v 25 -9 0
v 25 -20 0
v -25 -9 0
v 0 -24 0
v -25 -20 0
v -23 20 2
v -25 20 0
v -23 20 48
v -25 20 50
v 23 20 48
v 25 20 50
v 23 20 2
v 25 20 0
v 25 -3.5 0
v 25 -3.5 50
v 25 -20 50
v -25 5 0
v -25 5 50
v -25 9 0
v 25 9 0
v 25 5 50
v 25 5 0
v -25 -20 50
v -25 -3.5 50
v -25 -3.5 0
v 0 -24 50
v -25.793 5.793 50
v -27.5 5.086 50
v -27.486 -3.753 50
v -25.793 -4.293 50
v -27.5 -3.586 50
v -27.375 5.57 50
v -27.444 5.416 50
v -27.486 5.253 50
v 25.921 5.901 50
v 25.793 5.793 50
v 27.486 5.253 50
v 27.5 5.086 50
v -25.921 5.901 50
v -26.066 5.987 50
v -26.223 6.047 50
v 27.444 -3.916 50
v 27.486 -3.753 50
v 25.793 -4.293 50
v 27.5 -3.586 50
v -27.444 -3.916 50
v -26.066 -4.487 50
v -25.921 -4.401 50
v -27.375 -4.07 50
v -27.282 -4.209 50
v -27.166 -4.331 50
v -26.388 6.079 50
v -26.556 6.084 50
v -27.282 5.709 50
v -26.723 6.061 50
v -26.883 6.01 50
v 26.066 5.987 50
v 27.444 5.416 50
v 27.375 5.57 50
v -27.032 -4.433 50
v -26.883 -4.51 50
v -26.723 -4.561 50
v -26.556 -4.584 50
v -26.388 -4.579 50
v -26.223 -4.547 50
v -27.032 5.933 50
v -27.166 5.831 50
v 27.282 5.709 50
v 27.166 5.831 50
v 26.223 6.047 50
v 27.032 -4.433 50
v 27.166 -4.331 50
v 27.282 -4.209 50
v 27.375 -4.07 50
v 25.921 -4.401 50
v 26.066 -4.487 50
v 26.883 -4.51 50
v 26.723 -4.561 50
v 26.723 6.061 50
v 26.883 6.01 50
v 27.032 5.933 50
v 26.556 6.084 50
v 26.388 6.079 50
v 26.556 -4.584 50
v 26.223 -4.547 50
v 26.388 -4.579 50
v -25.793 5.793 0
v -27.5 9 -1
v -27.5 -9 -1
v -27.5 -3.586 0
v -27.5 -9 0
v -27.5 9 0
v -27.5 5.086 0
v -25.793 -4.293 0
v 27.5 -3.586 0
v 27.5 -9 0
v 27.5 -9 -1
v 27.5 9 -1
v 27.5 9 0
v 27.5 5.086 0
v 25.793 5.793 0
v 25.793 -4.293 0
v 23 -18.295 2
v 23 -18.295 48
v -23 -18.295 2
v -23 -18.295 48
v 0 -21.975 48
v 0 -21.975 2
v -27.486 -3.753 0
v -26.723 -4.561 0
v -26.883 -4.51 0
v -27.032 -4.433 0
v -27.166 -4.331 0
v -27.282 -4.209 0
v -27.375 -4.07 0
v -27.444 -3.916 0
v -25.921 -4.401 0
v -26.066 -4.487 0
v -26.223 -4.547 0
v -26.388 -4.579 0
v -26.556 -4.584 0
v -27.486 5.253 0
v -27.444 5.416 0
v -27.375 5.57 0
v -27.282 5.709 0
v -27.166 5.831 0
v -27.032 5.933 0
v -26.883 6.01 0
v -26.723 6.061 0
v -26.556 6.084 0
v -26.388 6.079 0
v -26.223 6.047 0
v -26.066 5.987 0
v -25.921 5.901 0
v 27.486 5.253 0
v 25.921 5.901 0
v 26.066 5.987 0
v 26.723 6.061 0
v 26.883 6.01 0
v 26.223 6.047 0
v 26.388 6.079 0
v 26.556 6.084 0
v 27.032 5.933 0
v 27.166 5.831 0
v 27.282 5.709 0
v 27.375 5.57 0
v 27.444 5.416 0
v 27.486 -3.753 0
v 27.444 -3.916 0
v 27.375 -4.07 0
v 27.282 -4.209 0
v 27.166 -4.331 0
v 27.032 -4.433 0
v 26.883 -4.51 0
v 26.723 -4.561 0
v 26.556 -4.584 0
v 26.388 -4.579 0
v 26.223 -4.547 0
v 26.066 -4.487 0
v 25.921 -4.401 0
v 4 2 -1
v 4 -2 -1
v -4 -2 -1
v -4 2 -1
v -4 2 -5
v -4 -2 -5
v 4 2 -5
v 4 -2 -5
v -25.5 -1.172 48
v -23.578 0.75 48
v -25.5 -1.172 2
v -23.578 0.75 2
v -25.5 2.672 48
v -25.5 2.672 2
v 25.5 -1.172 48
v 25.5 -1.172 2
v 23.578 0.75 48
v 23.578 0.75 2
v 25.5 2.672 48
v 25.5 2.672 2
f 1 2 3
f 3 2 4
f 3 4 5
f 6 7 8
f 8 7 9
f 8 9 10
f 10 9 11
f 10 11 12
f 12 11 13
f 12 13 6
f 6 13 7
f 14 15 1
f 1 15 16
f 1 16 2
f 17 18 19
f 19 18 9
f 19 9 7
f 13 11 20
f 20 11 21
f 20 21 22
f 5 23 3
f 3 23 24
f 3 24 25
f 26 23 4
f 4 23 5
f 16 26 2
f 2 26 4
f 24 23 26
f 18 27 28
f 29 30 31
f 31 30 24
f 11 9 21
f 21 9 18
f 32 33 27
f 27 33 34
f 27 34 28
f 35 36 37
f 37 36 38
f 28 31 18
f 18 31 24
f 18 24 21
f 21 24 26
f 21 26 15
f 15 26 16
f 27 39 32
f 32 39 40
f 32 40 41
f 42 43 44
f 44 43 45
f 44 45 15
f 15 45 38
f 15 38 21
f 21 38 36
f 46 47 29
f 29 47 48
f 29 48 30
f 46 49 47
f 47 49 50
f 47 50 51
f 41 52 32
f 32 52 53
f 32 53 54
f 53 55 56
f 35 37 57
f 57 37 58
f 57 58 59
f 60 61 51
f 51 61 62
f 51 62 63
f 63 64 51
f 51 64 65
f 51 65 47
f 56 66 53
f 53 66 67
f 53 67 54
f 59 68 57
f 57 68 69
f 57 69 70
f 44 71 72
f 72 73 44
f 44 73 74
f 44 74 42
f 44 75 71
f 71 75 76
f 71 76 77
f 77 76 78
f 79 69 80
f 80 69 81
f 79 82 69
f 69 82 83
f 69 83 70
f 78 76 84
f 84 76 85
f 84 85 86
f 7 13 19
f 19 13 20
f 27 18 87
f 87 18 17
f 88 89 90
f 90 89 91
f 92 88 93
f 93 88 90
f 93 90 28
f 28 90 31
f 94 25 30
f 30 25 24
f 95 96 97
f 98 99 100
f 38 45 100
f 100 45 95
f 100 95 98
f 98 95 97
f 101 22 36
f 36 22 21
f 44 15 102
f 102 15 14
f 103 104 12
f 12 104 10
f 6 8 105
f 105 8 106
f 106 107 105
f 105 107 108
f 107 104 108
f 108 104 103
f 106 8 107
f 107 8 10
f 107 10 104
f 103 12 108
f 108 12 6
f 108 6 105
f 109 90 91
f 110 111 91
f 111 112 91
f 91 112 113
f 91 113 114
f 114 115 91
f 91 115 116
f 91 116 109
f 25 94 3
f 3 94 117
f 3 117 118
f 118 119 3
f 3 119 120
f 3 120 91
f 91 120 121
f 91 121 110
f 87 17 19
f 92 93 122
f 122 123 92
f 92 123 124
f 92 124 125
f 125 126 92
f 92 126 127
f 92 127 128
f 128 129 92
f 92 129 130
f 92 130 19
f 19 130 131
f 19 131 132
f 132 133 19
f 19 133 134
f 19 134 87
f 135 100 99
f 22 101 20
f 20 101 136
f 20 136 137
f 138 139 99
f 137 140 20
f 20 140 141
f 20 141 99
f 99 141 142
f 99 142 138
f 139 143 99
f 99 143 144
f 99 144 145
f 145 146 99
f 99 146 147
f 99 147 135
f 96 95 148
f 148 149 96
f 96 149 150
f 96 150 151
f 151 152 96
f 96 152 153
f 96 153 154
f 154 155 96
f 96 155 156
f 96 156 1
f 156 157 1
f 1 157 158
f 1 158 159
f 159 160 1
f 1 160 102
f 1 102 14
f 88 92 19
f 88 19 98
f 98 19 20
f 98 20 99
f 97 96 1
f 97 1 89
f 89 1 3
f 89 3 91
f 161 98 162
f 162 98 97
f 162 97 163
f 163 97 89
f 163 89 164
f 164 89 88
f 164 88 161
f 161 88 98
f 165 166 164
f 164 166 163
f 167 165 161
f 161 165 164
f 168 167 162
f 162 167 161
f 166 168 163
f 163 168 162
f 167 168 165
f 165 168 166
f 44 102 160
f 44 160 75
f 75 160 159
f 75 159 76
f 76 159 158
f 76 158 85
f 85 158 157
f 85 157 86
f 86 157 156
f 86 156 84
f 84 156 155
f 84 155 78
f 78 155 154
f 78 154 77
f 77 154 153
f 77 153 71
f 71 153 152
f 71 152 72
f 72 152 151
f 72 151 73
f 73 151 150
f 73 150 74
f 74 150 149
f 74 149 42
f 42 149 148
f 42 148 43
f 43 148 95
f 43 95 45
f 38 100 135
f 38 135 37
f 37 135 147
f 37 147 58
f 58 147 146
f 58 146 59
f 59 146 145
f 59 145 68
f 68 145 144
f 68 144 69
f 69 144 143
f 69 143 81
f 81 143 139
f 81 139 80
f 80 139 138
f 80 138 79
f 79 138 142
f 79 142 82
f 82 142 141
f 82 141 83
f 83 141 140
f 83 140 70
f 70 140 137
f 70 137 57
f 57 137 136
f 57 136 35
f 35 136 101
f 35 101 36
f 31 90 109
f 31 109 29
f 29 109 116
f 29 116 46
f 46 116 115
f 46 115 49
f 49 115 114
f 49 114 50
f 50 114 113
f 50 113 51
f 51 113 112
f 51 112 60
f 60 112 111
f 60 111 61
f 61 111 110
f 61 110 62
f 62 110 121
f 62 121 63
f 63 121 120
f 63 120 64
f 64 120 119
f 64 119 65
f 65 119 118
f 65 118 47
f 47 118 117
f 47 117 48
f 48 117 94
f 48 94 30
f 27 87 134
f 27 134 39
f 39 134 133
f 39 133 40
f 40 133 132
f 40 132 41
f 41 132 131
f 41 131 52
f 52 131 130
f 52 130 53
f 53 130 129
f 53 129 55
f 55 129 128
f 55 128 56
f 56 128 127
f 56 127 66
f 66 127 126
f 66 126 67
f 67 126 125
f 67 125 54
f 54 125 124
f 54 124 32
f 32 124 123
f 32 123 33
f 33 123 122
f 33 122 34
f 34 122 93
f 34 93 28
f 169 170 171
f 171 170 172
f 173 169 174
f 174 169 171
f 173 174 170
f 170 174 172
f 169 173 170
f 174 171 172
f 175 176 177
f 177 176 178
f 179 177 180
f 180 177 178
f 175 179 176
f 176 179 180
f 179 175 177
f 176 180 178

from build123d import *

# Parameters (mm, degrees)
EXTRUDE_1_DEPTH = 50
EXTRUDE_4_DEPTH = 50
SHELL_START     = 2
SHELL_1_DEPTH   = 46
SKETCH_4_W      = 55
SKETCH_4_H      = 18
EXTRUDE_5_DEPTH = 1
SKETCH_5_W      = 8
SKETCH_5_H      = 4
EXTRUDE_6_DEPTH = 5
FILLET_1_R      = 1


# Read off the part's stored shape, not the designer's step: 抽壳1
with BuildPart() as part:
    # 草图2 → 凸台-拉伸1 (new body)
    with BuildSketch(Plane.XY):
        Polygon((-25, -20), (0, -24), (25, -20), (25, 20), (-25, 20), align=None)
    extrude(amount=EXTRUDE_1_DEPTH)

    # 草图3 → 凸台-拉伸4 (add)
    with BuildSketch(Plane.XY):
        Polygon((-25, 5), (-27.5, 7.5), (-27.5, -6), (-25, -3.5), align=None)
        Polygon((27.5, -6), (25, -3.5), (25, 5), (27.5, 7.5), align=None)
    extrude(amount=EXTRUDE_4_DEPTH)

    # 抽壳1 outline → 抽壳1 (cut)
    with BuildSketch(Plane.XY.offset(SHELL_START)):
        Polygon((23, -18.294561776), (23, 20), (-23, 20), (-23, -18.294561776), (0, -21.974561776), align=None)
        Polygon((-25.5, -1.171572875), (-23.578427125, 0.75), (-25.5, 2.671572875), align=None)
        Polygon((23.578427125, 0.75), (25.5, -1.171572875), (25.5, 2.671572875), align=None)
    extrude(amount=SHELL_1_DEPTH, mode=Mode.SUBTRACT)

    # 草图4 → 凸台-拉伸5 (add)
    with BuildSketch(Plane(origin=(0, 0, 0), x_dir=(-1, 0, 0), z_dir=(0, 0, -1))):
        Rectangle(SKETCH_4_W, SKETCH_4_H)
    extrude(amount=EXTRUDE_5_DEPTH)

    # 草图5 → 凸台-拉伸6 (add)
    with BuildSketch(Plane.XY):
        Rectangle(SKETCH_5_W, SKETCH_5_H)
    extrude(amount=-EXTRUDE_6_DEPTH)

    # 圆角1
    fillet_1_edges = [part.edges().sort_by_distance(p)[0] for p in [
        (-27.5, 7.5, 25),
        (-27.5, -6, 25),
        (27.5, -6, 25),
        (27.5, 7.5, 25),
    ]]
    fillet(fillet_1_edges, radius=FILLET_1_R)


solid = part.part
